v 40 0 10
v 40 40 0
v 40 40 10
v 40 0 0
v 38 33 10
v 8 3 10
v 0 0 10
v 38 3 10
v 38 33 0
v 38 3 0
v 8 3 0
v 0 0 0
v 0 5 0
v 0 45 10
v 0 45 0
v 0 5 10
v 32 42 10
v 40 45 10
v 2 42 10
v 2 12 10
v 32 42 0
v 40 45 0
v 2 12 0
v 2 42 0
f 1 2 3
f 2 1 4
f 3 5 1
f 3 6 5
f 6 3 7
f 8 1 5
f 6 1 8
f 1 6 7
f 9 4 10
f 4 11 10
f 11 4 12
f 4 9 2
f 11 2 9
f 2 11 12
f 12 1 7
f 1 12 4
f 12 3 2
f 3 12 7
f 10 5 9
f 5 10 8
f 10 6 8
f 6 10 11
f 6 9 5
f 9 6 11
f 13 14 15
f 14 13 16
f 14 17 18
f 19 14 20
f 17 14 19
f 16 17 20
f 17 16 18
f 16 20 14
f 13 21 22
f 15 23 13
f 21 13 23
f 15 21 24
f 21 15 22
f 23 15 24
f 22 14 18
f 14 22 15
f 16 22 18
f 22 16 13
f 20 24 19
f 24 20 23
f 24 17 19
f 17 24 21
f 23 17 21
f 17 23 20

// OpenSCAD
module big() {
    difference() {
        cube([40,40,10]);
        rotate([0,0,45]) cube([100,100,10]);
    }
}

module little() {
    difference() {
        cube([30,30,10]);
        rotate([0,0,45]) cube([100,100,10]);
    }
}

module unit() {
    difference() {
        big();
        translate([8,3,0]) #little();
    }
}

unit();
translate([40,45,0]) rotate([0,0,180]) unit();
